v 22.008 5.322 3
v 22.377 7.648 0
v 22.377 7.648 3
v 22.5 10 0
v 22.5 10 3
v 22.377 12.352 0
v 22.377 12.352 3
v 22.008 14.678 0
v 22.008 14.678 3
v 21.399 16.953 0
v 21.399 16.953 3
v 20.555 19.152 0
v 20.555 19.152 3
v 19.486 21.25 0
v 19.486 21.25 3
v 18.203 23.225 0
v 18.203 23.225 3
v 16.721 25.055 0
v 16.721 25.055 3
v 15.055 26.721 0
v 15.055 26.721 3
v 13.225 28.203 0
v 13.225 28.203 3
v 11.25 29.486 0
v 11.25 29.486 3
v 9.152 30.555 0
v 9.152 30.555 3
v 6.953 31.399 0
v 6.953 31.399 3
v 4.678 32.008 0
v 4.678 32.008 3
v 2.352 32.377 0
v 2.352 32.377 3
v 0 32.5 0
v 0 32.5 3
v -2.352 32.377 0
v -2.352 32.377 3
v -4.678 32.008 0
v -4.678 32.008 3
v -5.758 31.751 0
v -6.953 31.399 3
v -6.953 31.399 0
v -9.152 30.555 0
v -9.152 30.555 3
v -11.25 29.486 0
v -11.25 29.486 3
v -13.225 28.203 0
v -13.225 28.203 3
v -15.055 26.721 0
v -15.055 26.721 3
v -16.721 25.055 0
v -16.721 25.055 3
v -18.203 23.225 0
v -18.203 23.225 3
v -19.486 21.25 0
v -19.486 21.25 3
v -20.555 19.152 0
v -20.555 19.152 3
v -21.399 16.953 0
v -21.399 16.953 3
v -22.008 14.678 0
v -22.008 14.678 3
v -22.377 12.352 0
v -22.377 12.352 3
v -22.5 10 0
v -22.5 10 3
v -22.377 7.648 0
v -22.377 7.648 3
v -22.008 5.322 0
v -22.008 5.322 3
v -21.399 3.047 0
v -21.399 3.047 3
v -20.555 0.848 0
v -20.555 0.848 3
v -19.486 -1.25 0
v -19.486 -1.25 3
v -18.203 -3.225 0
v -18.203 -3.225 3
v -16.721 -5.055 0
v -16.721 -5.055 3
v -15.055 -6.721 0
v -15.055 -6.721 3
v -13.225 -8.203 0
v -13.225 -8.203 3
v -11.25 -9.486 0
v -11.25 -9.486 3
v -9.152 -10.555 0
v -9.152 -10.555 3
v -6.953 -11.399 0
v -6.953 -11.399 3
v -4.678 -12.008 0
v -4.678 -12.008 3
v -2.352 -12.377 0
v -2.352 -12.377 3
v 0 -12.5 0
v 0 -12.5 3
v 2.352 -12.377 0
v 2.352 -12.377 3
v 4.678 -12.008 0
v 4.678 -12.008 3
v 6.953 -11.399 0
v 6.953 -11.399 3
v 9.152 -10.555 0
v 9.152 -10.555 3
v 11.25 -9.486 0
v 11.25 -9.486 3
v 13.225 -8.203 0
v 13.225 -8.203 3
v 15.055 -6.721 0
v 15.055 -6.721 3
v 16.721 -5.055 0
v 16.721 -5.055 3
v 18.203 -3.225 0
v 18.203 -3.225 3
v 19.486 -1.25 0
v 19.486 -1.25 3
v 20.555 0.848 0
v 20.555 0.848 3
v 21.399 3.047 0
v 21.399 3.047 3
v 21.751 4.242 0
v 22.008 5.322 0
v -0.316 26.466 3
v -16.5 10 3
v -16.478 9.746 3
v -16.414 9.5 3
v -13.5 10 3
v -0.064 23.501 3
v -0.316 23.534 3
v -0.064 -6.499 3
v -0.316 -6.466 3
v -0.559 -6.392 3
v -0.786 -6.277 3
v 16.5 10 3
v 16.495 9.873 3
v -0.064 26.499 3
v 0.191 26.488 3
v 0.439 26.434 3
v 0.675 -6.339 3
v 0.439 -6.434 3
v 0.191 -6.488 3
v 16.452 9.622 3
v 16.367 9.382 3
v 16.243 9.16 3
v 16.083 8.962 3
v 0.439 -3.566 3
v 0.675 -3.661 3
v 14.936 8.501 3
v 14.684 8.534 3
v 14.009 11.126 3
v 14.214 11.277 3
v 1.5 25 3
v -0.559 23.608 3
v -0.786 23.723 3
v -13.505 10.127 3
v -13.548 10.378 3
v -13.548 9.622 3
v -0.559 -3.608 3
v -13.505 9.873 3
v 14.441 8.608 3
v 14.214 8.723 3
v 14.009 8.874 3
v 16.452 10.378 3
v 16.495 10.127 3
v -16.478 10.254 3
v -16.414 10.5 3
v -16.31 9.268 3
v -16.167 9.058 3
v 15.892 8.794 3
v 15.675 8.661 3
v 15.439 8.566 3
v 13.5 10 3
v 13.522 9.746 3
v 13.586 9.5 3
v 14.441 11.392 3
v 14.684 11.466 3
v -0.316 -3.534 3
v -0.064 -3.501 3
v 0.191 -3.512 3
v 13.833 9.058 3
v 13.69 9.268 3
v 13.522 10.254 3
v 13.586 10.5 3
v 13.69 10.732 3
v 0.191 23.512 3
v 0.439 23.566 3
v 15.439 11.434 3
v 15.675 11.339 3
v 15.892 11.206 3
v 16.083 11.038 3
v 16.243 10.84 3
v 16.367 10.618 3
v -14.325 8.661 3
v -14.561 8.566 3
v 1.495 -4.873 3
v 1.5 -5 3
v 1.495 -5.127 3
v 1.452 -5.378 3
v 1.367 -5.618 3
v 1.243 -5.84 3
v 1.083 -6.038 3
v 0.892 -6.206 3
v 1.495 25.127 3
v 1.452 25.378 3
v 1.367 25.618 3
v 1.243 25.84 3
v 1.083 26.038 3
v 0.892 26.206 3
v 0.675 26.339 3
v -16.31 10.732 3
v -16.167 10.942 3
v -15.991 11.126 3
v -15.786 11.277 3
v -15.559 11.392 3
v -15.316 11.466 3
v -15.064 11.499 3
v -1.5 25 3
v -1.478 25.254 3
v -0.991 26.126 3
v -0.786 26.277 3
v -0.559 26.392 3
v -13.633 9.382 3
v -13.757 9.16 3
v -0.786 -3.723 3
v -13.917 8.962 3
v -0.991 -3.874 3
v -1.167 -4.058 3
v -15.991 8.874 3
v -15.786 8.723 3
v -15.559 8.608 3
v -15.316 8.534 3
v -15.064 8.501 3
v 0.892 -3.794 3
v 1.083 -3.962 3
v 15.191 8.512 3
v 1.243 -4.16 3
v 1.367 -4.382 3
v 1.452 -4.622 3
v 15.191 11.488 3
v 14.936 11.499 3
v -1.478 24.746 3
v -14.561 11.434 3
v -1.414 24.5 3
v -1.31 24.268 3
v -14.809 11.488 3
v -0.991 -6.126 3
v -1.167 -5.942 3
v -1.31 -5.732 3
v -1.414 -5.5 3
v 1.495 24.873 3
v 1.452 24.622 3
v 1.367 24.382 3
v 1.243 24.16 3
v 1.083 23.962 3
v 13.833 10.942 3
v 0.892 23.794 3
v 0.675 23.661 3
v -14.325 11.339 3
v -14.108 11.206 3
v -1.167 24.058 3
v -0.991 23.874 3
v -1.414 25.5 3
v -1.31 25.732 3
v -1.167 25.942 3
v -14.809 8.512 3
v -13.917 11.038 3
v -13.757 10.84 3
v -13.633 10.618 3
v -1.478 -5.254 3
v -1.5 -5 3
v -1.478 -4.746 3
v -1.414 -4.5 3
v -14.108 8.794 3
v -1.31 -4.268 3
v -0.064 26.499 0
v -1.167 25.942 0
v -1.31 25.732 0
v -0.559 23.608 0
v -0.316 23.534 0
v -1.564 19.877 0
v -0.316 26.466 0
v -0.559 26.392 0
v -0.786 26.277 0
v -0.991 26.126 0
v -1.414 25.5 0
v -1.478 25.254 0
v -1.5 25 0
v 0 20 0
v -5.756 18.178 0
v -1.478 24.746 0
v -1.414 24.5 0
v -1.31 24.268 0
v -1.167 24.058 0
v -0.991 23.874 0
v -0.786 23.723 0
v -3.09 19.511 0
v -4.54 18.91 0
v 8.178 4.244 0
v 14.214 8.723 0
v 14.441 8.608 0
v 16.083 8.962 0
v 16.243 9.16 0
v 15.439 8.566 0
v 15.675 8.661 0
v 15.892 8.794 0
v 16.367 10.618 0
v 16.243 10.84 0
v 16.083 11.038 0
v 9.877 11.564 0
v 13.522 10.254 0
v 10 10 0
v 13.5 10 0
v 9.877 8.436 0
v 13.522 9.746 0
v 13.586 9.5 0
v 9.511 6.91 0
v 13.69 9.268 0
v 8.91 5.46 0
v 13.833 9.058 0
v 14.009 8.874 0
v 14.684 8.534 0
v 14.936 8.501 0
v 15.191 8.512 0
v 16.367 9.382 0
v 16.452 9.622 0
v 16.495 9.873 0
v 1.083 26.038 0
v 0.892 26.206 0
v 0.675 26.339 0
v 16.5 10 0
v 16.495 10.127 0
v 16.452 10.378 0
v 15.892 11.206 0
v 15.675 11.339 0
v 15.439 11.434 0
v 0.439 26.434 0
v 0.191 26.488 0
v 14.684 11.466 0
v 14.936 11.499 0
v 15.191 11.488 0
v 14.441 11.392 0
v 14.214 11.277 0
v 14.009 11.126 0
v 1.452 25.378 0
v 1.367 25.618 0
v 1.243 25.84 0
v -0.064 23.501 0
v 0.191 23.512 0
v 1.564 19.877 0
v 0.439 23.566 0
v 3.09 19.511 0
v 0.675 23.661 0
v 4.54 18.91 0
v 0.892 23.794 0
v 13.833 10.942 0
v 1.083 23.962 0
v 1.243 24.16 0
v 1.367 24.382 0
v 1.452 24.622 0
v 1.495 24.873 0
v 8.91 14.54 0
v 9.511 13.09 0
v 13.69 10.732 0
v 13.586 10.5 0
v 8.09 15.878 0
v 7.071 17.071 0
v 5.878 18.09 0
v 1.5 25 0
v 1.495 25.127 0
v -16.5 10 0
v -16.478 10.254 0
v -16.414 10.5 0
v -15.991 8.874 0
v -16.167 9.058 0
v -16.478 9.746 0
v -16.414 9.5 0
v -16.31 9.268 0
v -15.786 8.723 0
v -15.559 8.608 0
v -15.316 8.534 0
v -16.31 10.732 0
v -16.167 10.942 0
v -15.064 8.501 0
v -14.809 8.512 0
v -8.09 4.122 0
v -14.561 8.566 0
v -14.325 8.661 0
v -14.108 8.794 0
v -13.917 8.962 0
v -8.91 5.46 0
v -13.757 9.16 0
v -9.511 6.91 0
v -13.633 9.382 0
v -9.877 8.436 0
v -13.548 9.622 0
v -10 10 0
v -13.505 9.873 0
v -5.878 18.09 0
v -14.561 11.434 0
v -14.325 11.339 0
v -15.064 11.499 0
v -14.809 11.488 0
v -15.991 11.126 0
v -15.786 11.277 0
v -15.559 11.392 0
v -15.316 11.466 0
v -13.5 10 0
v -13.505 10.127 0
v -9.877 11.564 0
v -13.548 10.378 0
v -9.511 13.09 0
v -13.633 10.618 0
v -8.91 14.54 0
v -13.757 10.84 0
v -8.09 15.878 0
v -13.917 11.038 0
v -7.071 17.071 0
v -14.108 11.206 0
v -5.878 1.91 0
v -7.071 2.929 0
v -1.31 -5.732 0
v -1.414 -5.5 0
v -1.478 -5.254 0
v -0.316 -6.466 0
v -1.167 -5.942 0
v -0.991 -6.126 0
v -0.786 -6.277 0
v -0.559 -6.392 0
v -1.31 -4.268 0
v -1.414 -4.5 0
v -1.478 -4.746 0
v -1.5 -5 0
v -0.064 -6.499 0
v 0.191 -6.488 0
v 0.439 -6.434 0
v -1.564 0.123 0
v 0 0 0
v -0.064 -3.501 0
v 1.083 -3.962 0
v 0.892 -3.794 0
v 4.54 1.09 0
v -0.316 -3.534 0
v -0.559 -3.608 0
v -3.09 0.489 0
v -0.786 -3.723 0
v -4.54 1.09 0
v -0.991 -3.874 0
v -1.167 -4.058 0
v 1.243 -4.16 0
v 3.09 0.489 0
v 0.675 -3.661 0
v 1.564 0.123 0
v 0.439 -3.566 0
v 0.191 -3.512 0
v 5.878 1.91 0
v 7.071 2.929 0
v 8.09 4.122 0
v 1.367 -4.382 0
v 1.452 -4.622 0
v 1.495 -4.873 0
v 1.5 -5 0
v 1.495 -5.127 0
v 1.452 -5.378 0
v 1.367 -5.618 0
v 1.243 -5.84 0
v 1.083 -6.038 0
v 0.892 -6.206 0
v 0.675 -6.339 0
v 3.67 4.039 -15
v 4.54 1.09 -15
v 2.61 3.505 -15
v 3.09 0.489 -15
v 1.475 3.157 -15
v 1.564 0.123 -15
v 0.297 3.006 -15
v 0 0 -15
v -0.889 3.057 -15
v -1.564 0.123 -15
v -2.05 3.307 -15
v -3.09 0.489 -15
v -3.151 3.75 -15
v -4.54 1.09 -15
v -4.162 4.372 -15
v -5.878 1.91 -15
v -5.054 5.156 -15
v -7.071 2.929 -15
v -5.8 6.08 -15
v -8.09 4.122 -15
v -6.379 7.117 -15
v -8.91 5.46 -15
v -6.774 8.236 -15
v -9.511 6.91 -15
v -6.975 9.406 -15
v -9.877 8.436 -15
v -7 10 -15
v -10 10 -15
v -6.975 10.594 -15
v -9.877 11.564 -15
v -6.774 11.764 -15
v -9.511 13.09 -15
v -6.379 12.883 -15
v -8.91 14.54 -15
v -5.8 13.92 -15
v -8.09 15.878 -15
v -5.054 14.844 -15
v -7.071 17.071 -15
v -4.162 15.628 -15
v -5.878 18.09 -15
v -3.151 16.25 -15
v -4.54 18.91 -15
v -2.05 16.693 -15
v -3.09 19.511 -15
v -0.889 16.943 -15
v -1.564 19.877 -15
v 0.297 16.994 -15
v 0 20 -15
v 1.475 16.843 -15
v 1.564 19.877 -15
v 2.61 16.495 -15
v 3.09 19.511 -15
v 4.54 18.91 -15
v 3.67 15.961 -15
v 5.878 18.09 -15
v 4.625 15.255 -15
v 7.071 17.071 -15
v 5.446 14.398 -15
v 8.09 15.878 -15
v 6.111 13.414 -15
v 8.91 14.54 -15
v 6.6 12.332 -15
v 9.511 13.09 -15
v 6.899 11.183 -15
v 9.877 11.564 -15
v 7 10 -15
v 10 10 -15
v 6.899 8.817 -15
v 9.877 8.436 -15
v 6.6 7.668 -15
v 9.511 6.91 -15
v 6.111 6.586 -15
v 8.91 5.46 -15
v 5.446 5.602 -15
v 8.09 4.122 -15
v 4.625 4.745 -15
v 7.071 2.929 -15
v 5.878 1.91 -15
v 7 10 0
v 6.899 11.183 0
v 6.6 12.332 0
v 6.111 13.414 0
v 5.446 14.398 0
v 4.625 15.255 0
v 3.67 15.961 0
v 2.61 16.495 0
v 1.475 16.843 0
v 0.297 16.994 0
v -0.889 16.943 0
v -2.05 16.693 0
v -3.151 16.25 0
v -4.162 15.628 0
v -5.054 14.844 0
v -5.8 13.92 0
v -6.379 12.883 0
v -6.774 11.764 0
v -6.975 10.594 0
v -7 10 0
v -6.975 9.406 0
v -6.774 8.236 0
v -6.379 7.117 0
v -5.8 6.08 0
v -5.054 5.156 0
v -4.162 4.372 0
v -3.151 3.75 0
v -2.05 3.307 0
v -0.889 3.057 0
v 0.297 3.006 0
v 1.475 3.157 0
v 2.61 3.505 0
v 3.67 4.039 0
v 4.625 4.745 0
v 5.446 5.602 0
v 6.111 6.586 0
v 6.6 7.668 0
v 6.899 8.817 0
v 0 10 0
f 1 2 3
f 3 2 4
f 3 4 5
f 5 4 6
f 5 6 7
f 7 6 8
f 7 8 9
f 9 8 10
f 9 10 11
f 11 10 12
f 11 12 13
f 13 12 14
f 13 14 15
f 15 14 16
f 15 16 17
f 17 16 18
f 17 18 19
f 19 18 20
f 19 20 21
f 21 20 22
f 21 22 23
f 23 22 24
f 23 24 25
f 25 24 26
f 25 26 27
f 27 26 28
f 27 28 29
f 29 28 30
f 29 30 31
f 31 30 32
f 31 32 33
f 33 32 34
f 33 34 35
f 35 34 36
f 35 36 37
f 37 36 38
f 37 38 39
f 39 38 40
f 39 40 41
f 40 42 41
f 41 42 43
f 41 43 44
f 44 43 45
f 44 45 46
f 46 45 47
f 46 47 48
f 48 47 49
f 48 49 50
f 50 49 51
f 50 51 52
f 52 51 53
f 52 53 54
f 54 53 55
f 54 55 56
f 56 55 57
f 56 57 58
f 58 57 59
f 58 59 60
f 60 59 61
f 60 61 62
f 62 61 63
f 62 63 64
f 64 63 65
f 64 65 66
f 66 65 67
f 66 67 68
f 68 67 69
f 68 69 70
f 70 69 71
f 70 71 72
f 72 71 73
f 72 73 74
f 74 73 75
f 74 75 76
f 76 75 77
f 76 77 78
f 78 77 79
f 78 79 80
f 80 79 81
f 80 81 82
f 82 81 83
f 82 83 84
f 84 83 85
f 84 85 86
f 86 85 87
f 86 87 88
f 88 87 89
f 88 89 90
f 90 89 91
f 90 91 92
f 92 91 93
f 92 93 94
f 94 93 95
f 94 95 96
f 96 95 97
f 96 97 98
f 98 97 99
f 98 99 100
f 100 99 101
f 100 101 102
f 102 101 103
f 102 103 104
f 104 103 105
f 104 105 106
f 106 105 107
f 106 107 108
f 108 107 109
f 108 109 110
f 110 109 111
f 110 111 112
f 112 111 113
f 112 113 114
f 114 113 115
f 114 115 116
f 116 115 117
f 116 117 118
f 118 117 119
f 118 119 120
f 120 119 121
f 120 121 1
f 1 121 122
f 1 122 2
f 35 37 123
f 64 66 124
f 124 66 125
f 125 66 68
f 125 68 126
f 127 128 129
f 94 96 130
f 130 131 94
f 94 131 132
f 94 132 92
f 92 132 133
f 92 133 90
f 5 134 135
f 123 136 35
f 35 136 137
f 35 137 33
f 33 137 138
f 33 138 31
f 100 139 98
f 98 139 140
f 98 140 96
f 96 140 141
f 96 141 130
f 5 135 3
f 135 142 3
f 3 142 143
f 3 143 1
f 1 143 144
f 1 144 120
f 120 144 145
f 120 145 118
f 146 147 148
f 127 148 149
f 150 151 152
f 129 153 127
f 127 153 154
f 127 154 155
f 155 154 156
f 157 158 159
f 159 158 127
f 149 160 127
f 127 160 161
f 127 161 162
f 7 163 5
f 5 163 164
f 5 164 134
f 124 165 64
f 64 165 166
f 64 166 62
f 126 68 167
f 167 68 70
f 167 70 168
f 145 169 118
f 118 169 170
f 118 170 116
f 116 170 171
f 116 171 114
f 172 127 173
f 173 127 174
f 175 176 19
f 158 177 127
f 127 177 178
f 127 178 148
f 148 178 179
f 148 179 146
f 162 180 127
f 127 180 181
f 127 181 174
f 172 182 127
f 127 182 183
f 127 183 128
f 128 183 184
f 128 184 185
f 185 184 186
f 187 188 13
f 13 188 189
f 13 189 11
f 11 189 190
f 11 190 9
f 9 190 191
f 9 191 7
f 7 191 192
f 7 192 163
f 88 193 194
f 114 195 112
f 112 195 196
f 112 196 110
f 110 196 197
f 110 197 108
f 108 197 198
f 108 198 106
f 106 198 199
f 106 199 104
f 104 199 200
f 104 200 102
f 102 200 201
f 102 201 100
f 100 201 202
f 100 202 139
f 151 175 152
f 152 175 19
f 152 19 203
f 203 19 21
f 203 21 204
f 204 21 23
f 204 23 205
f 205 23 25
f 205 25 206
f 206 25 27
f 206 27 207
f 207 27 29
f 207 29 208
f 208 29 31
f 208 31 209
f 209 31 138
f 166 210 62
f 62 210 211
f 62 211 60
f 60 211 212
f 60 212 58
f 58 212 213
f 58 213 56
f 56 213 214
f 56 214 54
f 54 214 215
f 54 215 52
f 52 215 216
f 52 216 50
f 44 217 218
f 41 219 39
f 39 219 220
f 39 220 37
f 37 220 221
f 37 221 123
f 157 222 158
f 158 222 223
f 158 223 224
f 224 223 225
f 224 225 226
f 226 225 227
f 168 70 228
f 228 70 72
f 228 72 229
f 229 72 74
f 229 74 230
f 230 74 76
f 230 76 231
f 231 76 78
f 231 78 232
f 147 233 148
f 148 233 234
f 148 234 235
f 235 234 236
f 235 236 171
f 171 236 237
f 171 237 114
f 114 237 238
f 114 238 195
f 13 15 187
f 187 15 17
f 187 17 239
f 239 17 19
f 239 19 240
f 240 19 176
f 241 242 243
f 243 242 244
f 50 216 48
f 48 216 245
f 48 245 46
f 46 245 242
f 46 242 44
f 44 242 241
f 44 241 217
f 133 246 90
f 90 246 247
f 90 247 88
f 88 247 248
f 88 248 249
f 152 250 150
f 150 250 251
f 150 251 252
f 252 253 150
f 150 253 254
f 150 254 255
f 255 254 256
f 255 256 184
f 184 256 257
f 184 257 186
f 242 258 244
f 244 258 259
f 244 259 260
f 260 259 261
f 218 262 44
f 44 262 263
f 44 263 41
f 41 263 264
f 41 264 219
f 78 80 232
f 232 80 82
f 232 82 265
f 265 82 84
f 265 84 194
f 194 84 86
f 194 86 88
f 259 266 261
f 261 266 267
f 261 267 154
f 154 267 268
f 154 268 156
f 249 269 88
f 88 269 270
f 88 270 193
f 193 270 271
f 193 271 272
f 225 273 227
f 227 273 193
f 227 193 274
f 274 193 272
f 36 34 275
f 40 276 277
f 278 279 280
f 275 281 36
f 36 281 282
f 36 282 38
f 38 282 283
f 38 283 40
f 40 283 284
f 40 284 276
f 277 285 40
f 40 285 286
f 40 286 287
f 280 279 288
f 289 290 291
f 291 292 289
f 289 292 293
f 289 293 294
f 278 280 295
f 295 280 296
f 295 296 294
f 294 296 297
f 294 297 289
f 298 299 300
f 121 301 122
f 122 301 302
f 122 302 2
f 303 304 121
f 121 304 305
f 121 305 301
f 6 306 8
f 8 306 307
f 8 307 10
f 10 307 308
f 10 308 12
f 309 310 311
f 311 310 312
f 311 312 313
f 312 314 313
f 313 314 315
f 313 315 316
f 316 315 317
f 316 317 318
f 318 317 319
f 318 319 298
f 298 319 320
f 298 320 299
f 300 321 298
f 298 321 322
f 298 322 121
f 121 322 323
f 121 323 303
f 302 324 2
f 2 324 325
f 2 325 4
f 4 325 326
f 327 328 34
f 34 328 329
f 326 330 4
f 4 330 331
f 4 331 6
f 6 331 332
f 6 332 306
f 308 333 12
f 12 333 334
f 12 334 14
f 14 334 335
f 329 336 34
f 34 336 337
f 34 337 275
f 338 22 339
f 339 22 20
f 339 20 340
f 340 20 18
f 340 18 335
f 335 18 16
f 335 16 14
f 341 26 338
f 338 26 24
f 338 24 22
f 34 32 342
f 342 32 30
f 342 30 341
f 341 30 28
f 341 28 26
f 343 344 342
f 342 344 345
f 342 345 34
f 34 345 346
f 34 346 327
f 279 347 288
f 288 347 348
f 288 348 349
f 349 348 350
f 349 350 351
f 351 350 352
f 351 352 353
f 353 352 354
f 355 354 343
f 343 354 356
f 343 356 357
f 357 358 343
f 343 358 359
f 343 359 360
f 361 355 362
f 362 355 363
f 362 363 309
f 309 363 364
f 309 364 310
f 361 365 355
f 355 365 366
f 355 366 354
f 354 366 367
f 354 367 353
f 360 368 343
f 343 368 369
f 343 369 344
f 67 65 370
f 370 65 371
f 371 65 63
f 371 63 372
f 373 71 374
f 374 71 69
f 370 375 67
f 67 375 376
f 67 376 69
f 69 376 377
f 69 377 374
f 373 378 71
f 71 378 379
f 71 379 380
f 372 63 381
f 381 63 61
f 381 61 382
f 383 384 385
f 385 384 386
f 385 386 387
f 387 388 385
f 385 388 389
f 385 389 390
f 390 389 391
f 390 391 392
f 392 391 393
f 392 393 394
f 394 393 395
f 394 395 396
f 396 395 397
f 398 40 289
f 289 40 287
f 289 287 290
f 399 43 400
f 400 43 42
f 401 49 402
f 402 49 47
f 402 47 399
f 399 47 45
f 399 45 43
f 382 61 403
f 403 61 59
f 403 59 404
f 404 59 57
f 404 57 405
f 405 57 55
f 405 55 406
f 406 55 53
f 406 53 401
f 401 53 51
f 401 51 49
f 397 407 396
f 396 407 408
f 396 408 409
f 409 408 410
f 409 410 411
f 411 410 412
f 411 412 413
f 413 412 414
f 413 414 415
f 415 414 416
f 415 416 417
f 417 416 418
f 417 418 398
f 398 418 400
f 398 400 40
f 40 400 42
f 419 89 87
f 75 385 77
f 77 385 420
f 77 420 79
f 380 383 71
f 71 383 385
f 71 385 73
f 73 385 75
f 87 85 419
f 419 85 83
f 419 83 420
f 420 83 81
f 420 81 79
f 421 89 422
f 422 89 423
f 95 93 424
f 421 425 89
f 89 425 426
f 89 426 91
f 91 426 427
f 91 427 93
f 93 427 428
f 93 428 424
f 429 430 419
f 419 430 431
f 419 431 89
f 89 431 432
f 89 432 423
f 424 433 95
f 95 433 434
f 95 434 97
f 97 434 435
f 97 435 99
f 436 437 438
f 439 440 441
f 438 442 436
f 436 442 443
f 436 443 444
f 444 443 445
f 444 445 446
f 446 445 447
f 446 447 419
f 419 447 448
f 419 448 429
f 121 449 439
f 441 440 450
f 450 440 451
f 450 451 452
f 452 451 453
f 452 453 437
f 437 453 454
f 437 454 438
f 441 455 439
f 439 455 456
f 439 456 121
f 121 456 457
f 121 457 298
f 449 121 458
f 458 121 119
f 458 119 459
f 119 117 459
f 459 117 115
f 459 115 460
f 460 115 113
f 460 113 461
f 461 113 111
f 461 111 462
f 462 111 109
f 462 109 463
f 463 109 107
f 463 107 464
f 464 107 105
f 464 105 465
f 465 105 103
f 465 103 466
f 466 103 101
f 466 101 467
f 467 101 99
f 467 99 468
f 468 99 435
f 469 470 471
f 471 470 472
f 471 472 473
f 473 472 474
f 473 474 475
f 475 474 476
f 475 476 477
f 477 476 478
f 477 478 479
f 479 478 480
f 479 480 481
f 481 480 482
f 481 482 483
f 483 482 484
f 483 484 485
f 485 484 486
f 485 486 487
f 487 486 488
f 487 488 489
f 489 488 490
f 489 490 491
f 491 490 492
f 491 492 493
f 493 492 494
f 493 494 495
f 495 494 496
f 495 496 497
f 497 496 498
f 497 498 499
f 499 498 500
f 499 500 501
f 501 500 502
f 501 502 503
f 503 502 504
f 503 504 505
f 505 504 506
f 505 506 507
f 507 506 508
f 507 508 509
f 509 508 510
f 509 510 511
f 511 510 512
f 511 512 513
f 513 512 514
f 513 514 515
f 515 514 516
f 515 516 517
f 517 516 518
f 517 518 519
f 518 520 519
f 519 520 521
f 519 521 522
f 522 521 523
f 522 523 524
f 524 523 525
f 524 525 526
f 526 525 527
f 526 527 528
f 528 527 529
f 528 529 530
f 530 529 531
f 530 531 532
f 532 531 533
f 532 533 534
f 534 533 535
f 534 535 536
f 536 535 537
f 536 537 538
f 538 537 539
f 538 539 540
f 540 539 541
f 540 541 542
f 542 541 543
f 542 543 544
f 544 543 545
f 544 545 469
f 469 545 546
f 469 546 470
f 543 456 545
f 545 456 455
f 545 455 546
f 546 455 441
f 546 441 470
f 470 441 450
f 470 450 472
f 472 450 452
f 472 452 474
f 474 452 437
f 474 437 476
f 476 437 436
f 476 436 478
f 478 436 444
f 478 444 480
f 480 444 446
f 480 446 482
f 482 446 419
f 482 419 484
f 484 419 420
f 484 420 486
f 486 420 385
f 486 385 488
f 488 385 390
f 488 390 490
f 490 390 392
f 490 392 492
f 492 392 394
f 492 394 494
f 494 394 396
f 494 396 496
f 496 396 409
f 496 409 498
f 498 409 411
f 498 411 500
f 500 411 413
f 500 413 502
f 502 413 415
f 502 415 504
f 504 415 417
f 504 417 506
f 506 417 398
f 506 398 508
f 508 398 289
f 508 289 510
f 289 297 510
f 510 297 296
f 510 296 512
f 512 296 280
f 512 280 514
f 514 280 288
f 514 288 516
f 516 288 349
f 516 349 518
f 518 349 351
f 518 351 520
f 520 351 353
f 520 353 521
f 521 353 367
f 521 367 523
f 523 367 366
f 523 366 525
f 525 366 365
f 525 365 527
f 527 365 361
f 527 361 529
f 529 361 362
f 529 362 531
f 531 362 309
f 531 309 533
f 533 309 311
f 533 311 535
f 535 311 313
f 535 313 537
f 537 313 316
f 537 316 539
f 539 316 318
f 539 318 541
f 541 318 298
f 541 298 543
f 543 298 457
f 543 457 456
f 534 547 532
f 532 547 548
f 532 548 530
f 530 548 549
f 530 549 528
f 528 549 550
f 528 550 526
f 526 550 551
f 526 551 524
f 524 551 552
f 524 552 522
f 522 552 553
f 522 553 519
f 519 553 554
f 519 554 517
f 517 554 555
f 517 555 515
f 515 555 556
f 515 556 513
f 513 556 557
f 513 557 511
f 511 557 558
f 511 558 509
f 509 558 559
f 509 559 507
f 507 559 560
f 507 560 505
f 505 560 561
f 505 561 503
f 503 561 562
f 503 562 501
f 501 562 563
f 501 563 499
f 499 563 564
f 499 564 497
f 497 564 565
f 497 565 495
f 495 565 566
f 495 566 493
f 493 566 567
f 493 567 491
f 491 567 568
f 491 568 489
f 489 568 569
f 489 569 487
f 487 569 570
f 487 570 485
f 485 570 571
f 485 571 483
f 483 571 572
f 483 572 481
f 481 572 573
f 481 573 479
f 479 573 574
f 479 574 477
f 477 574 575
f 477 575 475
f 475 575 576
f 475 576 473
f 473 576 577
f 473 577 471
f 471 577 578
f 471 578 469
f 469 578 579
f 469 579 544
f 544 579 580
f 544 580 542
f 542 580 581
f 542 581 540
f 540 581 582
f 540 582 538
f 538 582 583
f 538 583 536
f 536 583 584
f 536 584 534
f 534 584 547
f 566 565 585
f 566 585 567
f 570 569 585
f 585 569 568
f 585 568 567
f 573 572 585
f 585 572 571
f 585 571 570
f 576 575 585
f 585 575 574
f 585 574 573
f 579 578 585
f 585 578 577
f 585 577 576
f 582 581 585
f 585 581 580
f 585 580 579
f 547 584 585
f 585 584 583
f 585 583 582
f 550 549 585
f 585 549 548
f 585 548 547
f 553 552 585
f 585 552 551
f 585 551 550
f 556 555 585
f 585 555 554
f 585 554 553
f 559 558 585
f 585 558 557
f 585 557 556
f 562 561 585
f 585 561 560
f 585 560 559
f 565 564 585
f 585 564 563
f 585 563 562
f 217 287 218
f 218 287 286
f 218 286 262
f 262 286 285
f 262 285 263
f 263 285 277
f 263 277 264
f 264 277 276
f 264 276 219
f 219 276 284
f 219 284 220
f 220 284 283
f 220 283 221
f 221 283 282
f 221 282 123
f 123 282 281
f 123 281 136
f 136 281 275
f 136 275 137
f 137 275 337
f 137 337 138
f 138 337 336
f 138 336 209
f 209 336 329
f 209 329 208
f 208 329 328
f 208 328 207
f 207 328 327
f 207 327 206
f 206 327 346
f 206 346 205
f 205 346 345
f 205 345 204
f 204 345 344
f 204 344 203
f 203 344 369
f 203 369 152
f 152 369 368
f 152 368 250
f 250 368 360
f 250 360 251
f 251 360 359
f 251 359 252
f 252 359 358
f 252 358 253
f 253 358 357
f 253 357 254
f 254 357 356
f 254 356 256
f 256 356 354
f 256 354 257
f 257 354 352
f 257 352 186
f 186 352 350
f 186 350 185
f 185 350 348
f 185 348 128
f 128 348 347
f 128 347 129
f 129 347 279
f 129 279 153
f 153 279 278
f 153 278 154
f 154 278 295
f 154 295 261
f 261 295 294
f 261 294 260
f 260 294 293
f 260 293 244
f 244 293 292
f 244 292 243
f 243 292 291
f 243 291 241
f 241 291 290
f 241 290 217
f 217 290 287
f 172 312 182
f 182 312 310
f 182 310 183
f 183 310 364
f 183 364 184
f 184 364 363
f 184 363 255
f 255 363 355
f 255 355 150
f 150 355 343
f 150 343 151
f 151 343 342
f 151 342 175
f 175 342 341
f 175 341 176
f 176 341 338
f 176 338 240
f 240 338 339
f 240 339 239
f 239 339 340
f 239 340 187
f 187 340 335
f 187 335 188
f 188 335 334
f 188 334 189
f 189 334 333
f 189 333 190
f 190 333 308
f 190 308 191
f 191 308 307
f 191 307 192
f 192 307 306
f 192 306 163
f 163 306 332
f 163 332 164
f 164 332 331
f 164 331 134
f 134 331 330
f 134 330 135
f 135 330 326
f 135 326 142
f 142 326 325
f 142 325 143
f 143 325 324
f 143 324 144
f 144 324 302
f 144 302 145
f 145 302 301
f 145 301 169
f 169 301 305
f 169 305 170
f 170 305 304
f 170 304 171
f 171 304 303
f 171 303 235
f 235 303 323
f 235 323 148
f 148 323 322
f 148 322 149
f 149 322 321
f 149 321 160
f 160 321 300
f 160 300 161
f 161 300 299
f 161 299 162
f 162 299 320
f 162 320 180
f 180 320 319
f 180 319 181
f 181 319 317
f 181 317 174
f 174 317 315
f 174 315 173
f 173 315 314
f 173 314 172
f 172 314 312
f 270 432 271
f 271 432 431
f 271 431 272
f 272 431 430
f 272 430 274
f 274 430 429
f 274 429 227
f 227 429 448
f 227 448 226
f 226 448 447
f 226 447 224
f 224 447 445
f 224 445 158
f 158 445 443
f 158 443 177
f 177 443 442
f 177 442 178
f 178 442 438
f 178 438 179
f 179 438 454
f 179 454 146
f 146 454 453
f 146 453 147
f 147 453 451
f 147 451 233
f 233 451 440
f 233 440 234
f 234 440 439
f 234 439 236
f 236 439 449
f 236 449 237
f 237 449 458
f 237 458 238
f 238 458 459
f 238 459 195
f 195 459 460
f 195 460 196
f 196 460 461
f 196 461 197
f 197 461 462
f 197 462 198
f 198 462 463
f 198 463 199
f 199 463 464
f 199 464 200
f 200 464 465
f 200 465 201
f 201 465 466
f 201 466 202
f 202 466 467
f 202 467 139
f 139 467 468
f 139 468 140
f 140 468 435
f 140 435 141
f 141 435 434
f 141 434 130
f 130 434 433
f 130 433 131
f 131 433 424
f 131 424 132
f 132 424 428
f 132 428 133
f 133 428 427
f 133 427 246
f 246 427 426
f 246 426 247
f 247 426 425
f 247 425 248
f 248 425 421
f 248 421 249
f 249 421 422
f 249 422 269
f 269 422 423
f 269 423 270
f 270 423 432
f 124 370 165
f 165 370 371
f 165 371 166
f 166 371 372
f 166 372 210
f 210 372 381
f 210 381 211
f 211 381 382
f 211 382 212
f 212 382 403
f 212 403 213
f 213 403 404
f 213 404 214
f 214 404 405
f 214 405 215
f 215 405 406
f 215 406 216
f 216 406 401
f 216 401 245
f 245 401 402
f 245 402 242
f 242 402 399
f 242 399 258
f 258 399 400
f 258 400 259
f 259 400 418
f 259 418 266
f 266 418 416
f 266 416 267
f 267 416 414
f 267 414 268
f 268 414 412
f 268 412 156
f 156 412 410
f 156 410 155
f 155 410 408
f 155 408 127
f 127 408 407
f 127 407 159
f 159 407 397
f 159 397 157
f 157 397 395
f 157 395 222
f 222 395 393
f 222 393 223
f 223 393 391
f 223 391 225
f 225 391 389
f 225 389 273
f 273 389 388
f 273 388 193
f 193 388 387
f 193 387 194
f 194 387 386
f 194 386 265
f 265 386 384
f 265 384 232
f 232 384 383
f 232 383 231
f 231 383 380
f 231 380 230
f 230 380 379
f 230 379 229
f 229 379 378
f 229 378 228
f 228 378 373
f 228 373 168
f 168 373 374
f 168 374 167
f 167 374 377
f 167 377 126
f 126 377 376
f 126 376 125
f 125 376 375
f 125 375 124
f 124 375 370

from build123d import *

# Parameters (mm, degrees)
SKETCH2_R           = 22.5
BOSS_EXTRUDE1_DEPTH = 3
SKETCH3_R           = 10
SKETCH3_R_2         = 7
BOSS_EXTRUDE2_DEPTH = 15
SKETCH1_R           = 1.5
CUT_EXTRUDE1_DEPTH  = 9


with BuildPart() as part:
    # Sketch2 → Boss-Extrude1 (new body)
    with BuildSketch(Plane.XY):
        with Locations((0, 10)):
            Circle(SKETCH2_R)
    extrude(amount=BOSS_EXTRUDE1_DEPTH)

    # Sketch3 → Boss-Extrude2 (add)
    with BuildSketch(Plane(origin=(0, 0, 0), x_dir=(-1, 0, 0), z_dir=(0, 0, -1))):
        with Locations(Location((0, 10, 0), (0, 0, 180))):
            Circle(SKETCH3_R)
        with Locations((0, 10)):
            Circle(SKETCH3_R_2, mode=Mode.SUBTRACT)
    extrude(amount=BOSS_EXTRUDE2_DEPTH)

    # Sketch1 → Cut-Extrude1 (cut)
    with BuildSketch(Plane.XY):
        with Locations((0, 25)):
            Circle(SKETCH1_R)
        with Locations((15, 10)):
            Circle(SKETCH1_R)
        with Locations((0, -5)):
            Circle(SKETCH1_R)
        with Locations((-15, 10)):
            Circle(SKETCH1_R)
    extrude(amount=CUT_EXTRUDE1_DEPTH, mode=Mode.SUBTRACT)


solid = part.part
